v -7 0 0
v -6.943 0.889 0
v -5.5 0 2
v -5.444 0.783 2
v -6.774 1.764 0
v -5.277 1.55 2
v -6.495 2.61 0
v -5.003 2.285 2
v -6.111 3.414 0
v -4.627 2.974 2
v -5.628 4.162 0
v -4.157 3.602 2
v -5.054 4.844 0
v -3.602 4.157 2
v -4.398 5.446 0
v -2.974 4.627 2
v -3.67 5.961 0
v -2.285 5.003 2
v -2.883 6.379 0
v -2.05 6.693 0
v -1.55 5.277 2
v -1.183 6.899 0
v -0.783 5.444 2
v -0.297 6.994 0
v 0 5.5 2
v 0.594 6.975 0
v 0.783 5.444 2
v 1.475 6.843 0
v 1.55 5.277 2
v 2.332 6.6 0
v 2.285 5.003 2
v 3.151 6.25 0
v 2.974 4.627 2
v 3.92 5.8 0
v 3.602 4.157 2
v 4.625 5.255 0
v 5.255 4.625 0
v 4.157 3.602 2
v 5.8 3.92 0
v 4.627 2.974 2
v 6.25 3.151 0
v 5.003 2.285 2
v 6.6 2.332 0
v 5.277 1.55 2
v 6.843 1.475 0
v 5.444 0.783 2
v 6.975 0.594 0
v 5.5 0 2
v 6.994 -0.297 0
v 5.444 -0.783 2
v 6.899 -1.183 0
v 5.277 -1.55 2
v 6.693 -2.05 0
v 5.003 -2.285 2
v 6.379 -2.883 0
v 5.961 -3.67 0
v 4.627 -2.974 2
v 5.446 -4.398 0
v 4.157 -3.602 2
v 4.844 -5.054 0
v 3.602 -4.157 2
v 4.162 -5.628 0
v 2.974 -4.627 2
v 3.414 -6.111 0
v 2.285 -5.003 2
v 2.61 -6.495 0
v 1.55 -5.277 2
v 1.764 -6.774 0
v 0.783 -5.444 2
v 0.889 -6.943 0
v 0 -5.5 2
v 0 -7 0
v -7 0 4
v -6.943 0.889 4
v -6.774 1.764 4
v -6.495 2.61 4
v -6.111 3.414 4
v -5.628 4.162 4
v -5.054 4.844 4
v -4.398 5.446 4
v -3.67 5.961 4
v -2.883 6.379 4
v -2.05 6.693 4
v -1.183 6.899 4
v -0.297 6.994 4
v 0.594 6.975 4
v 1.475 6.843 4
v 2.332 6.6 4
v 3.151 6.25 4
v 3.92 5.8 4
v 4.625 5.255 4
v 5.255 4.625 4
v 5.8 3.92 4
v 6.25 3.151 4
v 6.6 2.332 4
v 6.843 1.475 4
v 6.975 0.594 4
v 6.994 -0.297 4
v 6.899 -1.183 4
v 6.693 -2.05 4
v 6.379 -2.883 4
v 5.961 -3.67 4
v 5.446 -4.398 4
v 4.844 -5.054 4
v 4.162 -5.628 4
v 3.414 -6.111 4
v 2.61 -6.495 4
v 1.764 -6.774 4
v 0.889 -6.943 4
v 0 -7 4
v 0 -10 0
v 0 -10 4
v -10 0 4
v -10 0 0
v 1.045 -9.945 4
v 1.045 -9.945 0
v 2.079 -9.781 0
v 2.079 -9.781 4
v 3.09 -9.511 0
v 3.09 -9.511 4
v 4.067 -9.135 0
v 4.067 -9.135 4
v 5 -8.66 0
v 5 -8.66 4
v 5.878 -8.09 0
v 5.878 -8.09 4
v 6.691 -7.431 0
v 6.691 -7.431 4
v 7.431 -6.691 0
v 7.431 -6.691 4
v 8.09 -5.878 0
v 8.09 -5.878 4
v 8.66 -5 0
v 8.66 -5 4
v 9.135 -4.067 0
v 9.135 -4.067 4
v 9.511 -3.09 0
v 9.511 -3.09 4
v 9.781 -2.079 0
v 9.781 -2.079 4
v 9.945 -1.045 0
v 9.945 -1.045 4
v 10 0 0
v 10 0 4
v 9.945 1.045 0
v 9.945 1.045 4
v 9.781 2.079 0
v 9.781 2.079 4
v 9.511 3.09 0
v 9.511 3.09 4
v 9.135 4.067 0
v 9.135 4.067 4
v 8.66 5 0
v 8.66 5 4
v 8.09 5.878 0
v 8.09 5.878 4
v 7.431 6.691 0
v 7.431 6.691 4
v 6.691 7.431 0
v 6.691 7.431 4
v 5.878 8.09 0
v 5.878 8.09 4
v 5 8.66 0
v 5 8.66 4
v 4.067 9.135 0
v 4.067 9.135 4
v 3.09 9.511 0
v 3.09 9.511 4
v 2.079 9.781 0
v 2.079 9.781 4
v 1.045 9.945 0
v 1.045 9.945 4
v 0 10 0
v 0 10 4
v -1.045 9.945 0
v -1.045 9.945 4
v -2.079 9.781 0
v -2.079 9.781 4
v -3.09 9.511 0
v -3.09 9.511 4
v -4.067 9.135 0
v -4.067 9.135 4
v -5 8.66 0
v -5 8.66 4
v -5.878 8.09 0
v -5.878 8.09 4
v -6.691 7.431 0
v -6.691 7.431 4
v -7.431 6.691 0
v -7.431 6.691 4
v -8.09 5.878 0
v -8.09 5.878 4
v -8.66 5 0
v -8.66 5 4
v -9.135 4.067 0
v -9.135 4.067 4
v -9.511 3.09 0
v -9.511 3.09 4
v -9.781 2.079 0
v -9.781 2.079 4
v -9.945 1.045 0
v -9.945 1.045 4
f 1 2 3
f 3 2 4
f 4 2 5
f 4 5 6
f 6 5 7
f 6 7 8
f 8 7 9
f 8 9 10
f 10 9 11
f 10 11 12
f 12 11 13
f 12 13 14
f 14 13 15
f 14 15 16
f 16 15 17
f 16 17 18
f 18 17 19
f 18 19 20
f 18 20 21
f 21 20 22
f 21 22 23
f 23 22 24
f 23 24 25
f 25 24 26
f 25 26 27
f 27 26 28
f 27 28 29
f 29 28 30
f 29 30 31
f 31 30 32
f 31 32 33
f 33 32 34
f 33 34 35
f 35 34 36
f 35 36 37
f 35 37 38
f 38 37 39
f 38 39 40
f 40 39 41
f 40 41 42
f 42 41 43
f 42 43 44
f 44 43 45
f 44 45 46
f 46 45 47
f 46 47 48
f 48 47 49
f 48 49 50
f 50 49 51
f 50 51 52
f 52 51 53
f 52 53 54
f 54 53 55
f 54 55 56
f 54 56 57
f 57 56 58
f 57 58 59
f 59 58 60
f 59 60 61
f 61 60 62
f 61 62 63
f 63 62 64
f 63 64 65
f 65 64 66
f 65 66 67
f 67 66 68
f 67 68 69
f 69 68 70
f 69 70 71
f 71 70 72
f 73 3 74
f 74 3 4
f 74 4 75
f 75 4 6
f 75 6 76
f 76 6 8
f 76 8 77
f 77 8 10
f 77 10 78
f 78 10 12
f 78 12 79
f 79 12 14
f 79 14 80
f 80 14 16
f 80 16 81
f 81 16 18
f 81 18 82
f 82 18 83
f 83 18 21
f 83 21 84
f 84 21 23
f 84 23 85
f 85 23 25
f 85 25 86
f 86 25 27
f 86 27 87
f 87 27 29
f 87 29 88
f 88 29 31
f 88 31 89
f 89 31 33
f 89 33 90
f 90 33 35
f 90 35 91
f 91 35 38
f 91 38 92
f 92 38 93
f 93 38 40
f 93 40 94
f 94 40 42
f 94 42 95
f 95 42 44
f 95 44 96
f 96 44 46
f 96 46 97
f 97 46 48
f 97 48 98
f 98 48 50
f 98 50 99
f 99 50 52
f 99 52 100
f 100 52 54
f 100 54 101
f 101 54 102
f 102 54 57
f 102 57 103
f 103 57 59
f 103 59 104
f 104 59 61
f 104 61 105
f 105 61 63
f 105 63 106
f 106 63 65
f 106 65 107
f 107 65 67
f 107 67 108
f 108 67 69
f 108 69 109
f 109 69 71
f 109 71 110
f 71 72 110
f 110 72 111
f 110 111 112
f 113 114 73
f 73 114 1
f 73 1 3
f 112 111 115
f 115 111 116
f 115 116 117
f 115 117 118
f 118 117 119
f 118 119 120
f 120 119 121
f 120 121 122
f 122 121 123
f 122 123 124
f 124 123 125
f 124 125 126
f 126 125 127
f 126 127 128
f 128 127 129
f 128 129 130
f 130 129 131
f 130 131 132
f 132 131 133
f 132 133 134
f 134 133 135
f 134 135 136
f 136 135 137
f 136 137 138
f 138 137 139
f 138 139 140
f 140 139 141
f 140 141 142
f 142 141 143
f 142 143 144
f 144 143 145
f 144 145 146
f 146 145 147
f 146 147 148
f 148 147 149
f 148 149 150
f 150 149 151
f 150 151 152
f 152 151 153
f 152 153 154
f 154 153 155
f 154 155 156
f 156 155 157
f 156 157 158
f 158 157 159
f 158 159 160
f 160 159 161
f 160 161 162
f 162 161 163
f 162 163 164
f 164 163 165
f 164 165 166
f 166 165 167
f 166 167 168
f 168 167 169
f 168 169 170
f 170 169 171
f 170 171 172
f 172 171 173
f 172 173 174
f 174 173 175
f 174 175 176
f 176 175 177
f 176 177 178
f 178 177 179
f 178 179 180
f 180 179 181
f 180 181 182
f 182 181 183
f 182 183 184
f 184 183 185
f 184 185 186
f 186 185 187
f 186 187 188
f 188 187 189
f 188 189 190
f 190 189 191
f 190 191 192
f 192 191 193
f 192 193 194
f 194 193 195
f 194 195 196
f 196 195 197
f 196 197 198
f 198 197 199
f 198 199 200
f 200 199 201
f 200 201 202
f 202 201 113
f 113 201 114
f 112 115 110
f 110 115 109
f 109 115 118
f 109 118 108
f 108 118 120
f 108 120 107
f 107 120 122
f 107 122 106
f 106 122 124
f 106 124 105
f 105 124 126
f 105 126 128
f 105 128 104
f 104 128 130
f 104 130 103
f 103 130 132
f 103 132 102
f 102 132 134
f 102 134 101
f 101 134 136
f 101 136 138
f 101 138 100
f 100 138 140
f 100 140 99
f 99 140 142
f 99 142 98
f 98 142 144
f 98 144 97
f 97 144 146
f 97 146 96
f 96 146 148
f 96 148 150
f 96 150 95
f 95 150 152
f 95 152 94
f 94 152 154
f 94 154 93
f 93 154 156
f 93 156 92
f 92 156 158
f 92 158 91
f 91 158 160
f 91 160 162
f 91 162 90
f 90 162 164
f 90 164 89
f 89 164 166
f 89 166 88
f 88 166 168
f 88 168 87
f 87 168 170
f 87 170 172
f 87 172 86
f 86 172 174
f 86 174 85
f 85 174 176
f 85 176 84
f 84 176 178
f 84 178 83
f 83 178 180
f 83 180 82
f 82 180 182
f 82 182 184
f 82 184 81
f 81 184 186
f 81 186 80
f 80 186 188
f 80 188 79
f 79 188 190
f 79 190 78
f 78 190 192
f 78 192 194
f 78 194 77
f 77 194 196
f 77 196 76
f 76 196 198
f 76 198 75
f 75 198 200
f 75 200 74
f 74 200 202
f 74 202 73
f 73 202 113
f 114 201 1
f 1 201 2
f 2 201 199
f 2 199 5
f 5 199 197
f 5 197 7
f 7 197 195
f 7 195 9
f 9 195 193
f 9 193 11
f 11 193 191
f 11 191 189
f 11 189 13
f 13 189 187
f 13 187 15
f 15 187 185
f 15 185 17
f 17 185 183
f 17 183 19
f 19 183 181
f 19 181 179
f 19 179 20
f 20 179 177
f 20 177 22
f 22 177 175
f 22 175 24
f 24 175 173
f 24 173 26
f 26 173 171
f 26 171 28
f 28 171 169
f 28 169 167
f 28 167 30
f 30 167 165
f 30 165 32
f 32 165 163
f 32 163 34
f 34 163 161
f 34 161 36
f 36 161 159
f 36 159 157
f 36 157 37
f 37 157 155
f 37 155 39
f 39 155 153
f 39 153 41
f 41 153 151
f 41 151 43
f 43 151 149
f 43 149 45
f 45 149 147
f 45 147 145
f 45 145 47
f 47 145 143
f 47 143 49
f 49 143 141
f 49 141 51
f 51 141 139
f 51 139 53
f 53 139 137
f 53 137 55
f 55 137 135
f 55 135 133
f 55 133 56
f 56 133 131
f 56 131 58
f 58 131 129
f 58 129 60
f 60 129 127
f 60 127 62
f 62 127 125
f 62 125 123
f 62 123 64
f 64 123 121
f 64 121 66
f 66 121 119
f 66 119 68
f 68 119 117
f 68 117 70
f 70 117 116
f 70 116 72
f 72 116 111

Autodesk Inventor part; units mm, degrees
ref_plane "YZ Plane" through (0, 0, 0) normal (1, 0, 0) x (0, 1, 0)
ref_plane "XZ Plane" through (0, 0, 0) normal (0, 1, 0) x (-1, 0, 0)
ref_plane "XY Plane" through (0, 0, 0) normal (0, 0, 1) x (1, 0, 0)
sketch "Skizze1" plane through (0, 0, 0) normal (0, 0, 1) x (1, 0, 0)
  circle A0 centre (0, 0) radius 7
  circle A1 centre (0, 0) radius 10
  line L0 (0, 0) -> (-10, 0)
  line L1 (0, 0) -> (0, -10)
  point P0 (0, -7)
  point P1 (-7, 0)
  dimension "d0" = 14
  dimension "d1" = 20
extrude "Extrusion1" add sketch "Skizze1" along normal blind 4 contours A0 L0 A1 L1 picked at (-8.8353, 1.3561)
sketch "Skizze2" plane through (-10, 0, 0) normal (0, -1, 0) x (1, 0, 0)
  line L0 (3, 0) -> (3, 4) construction
  line L1 (3, 2) -> (4.5, 2) construction
  line L2 (4.5, 2) -> (3, 4)
  line L3 (20, 4) -> (0, 4) projected
  line L4 (4.5, 2) -> (3, 0)
  line L5 (3, 0) -> (3, 4)
  line L6 (10, -0.8) -> (10, 4.8) projected
  point P0 (10, 0)
  point P1 (10, 4)
  dimension "d4" = 1.5
revolve "Umdrehung1" add sketch "Skizze2" angle 270 about axis through (0, 0, -10) along (0, 0, -1)
properties part number "C-ClipV1"
